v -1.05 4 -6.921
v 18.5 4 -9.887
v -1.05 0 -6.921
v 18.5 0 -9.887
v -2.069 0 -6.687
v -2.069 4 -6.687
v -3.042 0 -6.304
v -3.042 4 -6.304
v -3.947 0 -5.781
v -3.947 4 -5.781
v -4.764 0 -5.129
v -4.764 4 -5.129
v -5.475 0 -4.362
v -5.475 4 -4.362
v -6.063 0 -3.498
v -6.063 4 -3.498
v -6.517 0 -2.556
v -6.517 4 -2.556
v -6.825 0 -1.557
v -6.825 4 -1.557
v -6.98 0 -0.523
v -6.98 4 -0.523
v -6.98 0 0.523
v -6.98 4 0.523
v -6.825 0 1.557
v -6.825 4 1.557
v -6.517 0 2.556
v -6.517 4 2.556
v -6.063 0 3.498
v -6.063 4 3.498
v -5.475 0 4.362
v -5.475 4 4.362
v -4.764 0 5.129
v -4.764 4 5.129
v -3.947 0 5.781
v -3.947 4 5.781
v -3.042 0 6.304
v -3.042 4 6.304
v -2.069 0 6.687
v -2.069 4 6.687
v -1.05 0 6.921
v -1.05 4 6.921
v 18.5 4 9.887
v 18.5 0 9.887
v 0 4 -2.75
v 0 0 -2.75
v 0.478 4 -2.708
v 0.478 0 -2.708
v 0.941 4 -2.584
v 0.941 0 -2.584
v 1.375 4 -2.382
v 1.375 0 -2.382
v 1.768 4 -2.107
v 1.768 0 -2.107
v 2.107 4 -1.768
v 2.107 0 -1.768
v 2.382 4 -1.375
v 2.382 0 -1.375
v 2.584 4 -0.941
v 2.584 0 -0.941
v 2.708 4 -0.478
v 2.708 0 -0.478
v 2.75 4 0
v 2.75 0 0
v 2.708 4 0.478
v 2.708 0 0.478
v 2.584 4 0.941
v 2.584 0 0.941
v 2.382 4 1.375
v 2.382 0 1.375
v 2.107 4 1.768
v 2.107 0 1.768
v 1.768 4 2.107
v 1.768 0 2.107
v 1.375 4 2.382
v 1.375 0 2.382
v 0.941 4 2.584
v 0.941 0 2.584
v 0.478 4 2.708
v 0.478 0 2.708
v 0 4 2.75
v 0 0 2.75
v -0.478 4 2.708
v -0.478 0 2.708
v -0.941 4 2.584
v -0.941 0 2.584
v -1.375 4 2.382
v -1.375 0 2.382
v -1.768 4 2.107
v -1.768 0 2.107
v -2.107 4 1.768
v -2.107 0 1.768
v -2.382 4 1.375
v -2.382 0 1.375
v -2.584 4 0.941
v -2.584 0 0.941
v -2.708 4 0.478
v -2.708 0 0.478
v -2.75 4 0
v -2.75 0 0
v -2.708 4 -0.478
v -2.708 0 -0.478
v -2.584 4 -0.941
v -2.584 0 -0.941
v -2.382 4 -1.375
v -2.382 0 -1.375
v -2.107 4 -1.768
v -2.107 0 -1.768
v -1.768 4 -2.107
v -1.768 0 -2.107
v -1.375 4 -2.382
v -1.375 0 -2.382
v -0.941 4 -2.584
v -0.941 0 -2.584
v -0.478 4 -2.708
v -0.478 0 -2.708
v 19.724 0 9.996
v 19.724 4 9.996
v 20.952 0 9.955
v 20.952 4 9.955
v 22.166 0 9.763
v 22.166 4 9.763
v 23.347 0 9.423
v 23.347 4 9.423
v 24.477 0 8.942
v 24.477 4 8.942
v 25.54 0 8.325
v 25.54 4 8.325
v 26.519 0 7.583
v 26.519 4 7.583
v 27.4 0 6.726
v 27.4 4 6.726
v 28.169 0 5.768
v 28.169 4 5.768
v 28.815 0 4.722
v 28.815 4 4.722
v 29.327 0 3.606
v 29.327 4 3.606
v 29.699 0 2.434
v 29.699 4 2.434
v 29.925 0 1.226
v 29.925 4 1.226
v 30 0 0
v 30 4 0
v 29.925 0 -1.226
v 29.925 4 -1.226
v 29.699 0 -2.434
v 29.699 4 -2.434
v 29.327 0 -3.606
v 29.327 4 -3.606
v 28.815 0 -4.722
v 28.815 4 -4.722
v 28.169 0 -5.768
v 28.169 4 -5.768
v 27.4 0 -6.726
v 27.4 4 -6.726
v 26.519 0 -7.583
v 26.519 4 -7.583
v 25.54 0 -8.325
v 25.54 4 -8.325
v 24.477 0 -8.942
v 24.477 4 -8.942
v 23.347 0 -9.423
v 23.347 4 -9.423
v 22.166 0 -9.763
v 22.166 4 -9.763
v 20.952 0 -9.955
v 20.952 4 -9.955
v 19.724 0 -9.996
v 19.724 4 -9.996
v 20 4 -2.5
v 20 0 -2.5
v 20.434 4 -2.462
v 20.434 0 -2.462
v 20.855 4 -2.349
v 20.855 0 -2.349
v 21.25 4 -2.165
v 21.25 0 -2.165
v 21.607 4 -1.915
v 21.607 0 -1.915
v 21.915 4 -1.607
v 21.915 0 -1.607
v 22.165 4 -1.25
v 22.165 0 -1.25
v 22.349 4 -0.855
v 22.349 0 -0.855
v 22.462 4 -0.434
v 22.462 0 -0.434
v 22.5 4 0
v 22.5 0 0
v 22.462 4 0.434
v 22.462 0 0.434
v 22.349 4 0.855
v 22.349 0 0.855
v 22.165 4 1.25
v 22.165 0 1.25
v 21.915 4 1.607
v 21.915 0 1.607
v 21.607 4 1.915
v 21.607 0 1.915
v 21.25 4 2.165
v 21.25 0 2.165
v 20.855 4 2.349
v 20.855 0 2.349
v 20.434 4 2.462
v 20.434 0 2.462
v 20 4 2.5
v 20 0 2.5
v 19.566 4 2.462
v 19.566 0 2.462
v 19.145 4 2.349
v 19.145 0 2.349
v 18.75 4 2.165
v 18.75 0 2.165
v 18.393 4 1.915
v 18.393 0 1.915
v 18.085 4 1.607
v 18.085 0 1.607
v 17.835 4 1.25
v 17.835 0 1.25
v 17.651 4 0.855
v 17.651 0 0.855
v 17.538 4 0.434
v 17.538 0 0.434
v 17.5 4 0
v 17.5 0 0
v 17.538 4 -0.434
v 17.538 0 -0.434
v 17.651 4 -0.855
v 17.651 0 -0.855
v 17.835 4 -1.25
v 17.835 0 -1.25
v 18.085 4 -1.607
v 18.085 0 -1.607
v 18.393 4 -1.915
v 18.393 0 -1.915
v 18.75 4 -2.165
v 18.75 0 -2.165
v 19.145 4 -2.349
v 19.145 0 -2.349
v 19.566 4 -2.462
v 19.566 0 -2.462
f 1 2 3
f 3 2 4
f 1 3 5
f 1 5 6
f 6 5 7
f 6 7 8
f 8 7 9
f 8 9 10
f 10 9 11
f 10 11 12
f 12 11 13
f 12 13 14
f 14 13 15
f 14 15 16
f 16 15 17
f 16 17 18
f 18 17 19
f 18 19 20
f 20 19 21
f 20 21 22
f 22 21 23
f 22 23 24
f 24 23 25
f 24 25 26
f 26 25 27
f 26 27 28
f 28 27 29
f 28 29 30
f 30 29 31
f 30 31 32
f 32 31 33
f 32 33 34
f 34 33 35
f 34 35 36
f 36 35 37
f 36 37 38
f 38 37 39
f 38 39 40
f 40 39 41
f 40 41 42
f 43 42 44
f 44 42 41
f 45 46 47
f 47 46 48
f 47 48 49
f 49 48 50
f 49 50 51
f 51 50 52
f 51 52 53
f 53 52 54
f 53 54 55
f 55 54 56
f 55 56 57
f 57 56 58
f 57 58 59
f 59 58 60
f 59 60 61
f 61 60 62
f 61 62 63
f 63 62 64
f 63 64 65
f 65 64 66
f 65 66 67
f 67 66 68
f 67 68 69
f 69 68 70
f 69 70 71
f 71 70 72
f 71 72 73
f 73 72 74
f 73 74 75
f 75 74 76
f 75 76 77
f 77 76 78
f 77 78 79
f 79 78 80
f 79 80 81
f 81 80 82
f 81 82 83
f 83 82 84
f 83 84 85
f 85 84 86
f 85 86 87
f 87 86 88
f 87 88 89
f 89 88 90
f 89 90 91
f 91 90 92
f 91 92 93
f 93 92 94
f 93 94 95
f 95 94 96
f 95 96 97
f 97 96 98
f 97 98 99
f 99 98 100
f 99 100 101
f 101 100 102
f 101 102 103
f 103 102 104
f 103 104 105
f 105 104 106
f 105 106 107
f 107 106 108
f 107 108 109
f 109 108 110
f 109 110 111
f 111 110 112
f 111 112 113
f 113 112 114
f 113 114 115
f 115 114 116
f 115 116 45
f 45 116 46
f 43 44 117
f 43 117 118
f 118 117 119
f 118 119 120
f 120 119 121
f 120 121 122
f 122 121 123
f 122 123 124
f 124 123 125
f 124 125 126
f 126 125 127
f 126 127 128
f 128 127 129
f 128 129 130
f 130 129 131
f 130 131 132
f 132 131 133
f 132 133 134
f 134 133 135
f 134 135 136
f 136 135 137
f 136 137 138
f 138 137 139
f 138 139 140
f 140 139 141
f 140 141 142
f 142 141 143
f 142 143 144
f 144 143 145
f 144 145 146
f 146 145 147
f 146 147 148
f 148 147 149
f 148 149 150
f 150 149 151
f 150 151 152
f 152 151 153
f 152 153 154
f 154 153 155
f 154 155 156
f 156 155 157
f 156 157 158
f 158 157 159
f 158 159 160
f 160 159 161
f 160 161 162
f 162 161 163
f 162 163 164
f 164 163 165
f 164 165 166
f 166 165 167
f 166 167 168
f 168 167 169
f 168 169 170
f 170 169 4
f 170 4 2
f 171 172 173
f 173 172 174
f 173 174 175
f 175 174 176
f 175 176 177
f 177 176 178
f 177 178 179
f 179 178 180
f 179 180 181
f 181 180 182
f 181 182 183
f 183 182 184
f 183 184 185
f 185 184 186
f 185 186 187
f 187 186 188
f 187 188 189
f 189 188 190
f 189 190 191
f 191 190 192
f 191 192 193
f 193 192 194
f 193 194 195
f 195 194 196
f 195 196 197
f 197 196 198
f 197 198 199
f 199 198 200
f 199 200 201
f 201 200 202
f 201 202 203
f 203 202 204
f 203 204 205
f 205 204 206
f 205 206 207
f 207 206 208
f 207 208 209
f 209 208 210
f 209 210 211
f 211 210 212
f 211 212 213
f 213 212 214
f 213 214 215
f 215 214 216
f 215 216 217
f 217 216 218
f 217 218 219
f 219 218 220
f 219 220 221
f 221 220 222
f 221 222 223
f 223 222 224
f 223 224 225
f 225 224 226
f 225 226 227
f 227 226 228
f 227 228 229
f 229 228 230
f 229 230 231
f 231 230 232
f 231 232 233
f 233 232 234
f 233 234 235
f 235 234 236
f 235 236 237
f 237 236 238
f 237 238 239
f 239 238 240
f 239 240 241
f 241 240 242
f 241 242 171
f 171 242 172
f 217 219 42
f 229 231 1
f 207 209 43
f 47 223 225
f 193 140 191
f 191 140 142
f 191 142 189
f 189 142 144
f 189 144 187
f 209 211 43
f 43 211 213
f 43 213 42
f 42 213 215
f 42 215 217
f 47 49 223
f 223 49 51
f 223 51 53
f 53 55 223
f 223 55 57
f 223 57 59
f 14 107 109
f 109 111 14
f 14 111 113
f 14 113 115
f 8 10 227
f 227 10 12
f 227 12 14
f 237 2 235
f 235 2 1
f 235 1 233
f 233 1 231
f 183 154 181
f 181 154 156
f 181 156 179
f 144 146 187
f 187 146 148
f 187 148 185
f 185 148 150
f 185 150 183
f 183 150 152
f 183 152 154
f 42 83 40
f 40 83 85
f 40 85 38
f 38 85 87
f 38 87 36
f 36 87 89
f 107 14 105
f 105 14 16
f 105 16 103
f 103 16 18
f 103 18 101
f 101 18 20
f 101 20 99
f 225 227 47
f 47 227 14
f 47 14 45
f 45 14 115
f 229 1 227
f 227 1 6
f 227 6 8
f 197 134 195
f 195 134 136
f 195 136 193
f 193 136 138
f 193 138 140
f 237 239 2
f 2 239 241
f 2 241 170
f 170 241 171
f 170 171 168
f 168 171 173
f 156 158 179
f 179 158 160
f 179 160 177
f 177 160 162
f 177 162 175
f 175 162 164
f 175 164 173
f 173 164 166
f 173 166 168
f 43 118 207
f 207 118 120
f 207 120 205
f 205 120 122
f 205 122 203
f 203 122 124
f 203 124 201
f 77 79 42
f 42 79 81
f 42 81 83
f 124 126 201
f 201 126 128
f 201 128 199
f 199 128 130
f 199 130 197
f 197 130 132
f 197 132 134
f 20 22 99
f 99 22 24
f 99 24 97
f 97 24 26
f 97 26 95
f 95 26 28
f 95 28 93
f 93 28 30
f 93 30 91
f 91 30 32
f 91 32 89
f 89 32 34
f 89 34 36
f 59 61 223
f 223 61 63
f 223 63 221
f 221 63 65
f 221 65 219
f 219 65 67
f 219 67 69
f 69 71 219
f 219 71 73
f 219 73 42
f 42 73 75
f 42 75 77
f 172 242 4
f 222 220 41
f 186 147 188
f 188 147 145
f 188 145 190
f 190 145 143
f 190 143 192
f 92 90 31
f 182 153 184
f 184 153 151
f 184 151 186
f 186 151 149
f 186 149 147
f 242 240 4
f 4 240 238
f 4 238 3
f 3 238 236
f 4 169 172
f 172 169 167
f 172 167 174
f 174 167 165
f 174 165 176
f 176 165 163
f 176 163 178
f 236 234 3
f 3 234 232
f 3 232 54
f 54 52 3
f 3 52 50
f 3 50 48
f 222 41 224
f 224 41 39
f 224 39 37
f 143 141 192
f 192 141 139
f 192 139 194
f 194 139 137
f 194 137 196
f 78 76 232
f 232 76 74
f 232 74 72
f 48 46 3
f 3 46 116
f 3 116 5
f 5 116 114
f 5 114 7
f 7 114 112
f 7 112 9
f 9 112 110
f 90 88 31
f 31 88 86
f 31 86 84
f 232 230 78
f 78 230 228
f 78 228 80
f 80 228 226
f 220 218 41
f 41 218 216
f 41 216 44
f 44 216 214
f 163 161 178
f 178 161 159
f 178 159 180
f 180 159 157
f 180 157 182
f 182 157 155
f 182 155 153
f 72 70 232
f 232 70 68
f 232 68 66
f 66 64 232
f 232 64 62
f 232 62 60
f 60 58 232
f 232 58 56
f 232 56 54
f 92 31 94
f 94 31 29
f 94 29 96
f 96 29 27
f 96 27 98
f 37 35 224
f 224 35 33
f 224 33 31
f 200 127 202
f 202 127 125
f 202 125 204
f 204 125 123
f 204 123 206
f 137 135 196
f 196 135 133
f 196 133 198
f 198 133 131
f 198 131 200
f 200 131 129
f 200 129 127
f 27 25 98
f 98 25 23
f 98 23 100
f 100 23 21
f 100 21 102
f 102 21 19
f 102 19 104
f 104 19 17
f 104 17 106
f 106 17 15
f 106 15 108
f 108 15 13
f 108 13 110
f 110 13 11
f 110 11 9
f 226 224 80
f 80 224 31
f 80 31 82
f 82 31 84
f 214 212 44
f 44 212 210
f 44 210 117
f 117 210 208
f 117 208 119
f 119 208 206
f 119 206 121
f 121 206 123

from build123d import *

# Parameters (mm, degrees)
SKETCH1_R           = 7
SKETCH1_R_2         = 2.75
SKETCH1_R_3         = 10
SKETCH1_R_4         = 2.5
BOSS_EXTRUDE1_DEPTH = 4


with BuildPart() as part:
    # Sketch1 → Boss-Extrude1 (new body)
    # profile 1 of 3: a face of its own
    with BuildSketch(Plane(origin=(0, 0, 0), x_dir=(1, 0, 0), z_dir=(0, 1, 0))):
        Circle(SKETCH1_R)
        with Locations(Location((0, 0, 0), (0, 0, 270))):
            Circle(SKETCH1_R_2, mode=Mode.SUBTRACT)
    # profile 2 of 3: a face of its own
    with BuildSketch(Plane(origin=(0, 0, 0), x_dir=(1, 0, 0), z_dir=(0, 1, 0))):
        with BuildLine():
            ThreePointArc((18.5, -9.886859967), (10, 0), (18.5, 9.886859967))
            Line((18.5, 9.886859967), (-1.05, 6.920801977))
            ThreePointArc((-1.05, 6.920801977), (4.563441684, 5.308012811), (7, 0))
            ThreePointArc((7, 0), (4.563441684, -5.308012811), (-1.05, -6.920801977))
            Line((-1.05, -6.920801977), (18.5, -9.886859967))
        make_face()
    # profile 3 of 3: a face of its own
    with BuildSketch(Plane(origin=(0, 0, 0), x_dir=(1, 0, 0), z_dir=(0, 1, 0))):
        with Locations((20, 0)):
            Circle(SKETCH1_R_3)
        with Locations(Location((20, 0, 0), (0, 0, 270))):
            Circle(SKETCH1_R_4, mode=Mode.SUBTRACT)
    extrude(amount=BOSS_EXTRUDE1_DEPTH)


solid = part.part
